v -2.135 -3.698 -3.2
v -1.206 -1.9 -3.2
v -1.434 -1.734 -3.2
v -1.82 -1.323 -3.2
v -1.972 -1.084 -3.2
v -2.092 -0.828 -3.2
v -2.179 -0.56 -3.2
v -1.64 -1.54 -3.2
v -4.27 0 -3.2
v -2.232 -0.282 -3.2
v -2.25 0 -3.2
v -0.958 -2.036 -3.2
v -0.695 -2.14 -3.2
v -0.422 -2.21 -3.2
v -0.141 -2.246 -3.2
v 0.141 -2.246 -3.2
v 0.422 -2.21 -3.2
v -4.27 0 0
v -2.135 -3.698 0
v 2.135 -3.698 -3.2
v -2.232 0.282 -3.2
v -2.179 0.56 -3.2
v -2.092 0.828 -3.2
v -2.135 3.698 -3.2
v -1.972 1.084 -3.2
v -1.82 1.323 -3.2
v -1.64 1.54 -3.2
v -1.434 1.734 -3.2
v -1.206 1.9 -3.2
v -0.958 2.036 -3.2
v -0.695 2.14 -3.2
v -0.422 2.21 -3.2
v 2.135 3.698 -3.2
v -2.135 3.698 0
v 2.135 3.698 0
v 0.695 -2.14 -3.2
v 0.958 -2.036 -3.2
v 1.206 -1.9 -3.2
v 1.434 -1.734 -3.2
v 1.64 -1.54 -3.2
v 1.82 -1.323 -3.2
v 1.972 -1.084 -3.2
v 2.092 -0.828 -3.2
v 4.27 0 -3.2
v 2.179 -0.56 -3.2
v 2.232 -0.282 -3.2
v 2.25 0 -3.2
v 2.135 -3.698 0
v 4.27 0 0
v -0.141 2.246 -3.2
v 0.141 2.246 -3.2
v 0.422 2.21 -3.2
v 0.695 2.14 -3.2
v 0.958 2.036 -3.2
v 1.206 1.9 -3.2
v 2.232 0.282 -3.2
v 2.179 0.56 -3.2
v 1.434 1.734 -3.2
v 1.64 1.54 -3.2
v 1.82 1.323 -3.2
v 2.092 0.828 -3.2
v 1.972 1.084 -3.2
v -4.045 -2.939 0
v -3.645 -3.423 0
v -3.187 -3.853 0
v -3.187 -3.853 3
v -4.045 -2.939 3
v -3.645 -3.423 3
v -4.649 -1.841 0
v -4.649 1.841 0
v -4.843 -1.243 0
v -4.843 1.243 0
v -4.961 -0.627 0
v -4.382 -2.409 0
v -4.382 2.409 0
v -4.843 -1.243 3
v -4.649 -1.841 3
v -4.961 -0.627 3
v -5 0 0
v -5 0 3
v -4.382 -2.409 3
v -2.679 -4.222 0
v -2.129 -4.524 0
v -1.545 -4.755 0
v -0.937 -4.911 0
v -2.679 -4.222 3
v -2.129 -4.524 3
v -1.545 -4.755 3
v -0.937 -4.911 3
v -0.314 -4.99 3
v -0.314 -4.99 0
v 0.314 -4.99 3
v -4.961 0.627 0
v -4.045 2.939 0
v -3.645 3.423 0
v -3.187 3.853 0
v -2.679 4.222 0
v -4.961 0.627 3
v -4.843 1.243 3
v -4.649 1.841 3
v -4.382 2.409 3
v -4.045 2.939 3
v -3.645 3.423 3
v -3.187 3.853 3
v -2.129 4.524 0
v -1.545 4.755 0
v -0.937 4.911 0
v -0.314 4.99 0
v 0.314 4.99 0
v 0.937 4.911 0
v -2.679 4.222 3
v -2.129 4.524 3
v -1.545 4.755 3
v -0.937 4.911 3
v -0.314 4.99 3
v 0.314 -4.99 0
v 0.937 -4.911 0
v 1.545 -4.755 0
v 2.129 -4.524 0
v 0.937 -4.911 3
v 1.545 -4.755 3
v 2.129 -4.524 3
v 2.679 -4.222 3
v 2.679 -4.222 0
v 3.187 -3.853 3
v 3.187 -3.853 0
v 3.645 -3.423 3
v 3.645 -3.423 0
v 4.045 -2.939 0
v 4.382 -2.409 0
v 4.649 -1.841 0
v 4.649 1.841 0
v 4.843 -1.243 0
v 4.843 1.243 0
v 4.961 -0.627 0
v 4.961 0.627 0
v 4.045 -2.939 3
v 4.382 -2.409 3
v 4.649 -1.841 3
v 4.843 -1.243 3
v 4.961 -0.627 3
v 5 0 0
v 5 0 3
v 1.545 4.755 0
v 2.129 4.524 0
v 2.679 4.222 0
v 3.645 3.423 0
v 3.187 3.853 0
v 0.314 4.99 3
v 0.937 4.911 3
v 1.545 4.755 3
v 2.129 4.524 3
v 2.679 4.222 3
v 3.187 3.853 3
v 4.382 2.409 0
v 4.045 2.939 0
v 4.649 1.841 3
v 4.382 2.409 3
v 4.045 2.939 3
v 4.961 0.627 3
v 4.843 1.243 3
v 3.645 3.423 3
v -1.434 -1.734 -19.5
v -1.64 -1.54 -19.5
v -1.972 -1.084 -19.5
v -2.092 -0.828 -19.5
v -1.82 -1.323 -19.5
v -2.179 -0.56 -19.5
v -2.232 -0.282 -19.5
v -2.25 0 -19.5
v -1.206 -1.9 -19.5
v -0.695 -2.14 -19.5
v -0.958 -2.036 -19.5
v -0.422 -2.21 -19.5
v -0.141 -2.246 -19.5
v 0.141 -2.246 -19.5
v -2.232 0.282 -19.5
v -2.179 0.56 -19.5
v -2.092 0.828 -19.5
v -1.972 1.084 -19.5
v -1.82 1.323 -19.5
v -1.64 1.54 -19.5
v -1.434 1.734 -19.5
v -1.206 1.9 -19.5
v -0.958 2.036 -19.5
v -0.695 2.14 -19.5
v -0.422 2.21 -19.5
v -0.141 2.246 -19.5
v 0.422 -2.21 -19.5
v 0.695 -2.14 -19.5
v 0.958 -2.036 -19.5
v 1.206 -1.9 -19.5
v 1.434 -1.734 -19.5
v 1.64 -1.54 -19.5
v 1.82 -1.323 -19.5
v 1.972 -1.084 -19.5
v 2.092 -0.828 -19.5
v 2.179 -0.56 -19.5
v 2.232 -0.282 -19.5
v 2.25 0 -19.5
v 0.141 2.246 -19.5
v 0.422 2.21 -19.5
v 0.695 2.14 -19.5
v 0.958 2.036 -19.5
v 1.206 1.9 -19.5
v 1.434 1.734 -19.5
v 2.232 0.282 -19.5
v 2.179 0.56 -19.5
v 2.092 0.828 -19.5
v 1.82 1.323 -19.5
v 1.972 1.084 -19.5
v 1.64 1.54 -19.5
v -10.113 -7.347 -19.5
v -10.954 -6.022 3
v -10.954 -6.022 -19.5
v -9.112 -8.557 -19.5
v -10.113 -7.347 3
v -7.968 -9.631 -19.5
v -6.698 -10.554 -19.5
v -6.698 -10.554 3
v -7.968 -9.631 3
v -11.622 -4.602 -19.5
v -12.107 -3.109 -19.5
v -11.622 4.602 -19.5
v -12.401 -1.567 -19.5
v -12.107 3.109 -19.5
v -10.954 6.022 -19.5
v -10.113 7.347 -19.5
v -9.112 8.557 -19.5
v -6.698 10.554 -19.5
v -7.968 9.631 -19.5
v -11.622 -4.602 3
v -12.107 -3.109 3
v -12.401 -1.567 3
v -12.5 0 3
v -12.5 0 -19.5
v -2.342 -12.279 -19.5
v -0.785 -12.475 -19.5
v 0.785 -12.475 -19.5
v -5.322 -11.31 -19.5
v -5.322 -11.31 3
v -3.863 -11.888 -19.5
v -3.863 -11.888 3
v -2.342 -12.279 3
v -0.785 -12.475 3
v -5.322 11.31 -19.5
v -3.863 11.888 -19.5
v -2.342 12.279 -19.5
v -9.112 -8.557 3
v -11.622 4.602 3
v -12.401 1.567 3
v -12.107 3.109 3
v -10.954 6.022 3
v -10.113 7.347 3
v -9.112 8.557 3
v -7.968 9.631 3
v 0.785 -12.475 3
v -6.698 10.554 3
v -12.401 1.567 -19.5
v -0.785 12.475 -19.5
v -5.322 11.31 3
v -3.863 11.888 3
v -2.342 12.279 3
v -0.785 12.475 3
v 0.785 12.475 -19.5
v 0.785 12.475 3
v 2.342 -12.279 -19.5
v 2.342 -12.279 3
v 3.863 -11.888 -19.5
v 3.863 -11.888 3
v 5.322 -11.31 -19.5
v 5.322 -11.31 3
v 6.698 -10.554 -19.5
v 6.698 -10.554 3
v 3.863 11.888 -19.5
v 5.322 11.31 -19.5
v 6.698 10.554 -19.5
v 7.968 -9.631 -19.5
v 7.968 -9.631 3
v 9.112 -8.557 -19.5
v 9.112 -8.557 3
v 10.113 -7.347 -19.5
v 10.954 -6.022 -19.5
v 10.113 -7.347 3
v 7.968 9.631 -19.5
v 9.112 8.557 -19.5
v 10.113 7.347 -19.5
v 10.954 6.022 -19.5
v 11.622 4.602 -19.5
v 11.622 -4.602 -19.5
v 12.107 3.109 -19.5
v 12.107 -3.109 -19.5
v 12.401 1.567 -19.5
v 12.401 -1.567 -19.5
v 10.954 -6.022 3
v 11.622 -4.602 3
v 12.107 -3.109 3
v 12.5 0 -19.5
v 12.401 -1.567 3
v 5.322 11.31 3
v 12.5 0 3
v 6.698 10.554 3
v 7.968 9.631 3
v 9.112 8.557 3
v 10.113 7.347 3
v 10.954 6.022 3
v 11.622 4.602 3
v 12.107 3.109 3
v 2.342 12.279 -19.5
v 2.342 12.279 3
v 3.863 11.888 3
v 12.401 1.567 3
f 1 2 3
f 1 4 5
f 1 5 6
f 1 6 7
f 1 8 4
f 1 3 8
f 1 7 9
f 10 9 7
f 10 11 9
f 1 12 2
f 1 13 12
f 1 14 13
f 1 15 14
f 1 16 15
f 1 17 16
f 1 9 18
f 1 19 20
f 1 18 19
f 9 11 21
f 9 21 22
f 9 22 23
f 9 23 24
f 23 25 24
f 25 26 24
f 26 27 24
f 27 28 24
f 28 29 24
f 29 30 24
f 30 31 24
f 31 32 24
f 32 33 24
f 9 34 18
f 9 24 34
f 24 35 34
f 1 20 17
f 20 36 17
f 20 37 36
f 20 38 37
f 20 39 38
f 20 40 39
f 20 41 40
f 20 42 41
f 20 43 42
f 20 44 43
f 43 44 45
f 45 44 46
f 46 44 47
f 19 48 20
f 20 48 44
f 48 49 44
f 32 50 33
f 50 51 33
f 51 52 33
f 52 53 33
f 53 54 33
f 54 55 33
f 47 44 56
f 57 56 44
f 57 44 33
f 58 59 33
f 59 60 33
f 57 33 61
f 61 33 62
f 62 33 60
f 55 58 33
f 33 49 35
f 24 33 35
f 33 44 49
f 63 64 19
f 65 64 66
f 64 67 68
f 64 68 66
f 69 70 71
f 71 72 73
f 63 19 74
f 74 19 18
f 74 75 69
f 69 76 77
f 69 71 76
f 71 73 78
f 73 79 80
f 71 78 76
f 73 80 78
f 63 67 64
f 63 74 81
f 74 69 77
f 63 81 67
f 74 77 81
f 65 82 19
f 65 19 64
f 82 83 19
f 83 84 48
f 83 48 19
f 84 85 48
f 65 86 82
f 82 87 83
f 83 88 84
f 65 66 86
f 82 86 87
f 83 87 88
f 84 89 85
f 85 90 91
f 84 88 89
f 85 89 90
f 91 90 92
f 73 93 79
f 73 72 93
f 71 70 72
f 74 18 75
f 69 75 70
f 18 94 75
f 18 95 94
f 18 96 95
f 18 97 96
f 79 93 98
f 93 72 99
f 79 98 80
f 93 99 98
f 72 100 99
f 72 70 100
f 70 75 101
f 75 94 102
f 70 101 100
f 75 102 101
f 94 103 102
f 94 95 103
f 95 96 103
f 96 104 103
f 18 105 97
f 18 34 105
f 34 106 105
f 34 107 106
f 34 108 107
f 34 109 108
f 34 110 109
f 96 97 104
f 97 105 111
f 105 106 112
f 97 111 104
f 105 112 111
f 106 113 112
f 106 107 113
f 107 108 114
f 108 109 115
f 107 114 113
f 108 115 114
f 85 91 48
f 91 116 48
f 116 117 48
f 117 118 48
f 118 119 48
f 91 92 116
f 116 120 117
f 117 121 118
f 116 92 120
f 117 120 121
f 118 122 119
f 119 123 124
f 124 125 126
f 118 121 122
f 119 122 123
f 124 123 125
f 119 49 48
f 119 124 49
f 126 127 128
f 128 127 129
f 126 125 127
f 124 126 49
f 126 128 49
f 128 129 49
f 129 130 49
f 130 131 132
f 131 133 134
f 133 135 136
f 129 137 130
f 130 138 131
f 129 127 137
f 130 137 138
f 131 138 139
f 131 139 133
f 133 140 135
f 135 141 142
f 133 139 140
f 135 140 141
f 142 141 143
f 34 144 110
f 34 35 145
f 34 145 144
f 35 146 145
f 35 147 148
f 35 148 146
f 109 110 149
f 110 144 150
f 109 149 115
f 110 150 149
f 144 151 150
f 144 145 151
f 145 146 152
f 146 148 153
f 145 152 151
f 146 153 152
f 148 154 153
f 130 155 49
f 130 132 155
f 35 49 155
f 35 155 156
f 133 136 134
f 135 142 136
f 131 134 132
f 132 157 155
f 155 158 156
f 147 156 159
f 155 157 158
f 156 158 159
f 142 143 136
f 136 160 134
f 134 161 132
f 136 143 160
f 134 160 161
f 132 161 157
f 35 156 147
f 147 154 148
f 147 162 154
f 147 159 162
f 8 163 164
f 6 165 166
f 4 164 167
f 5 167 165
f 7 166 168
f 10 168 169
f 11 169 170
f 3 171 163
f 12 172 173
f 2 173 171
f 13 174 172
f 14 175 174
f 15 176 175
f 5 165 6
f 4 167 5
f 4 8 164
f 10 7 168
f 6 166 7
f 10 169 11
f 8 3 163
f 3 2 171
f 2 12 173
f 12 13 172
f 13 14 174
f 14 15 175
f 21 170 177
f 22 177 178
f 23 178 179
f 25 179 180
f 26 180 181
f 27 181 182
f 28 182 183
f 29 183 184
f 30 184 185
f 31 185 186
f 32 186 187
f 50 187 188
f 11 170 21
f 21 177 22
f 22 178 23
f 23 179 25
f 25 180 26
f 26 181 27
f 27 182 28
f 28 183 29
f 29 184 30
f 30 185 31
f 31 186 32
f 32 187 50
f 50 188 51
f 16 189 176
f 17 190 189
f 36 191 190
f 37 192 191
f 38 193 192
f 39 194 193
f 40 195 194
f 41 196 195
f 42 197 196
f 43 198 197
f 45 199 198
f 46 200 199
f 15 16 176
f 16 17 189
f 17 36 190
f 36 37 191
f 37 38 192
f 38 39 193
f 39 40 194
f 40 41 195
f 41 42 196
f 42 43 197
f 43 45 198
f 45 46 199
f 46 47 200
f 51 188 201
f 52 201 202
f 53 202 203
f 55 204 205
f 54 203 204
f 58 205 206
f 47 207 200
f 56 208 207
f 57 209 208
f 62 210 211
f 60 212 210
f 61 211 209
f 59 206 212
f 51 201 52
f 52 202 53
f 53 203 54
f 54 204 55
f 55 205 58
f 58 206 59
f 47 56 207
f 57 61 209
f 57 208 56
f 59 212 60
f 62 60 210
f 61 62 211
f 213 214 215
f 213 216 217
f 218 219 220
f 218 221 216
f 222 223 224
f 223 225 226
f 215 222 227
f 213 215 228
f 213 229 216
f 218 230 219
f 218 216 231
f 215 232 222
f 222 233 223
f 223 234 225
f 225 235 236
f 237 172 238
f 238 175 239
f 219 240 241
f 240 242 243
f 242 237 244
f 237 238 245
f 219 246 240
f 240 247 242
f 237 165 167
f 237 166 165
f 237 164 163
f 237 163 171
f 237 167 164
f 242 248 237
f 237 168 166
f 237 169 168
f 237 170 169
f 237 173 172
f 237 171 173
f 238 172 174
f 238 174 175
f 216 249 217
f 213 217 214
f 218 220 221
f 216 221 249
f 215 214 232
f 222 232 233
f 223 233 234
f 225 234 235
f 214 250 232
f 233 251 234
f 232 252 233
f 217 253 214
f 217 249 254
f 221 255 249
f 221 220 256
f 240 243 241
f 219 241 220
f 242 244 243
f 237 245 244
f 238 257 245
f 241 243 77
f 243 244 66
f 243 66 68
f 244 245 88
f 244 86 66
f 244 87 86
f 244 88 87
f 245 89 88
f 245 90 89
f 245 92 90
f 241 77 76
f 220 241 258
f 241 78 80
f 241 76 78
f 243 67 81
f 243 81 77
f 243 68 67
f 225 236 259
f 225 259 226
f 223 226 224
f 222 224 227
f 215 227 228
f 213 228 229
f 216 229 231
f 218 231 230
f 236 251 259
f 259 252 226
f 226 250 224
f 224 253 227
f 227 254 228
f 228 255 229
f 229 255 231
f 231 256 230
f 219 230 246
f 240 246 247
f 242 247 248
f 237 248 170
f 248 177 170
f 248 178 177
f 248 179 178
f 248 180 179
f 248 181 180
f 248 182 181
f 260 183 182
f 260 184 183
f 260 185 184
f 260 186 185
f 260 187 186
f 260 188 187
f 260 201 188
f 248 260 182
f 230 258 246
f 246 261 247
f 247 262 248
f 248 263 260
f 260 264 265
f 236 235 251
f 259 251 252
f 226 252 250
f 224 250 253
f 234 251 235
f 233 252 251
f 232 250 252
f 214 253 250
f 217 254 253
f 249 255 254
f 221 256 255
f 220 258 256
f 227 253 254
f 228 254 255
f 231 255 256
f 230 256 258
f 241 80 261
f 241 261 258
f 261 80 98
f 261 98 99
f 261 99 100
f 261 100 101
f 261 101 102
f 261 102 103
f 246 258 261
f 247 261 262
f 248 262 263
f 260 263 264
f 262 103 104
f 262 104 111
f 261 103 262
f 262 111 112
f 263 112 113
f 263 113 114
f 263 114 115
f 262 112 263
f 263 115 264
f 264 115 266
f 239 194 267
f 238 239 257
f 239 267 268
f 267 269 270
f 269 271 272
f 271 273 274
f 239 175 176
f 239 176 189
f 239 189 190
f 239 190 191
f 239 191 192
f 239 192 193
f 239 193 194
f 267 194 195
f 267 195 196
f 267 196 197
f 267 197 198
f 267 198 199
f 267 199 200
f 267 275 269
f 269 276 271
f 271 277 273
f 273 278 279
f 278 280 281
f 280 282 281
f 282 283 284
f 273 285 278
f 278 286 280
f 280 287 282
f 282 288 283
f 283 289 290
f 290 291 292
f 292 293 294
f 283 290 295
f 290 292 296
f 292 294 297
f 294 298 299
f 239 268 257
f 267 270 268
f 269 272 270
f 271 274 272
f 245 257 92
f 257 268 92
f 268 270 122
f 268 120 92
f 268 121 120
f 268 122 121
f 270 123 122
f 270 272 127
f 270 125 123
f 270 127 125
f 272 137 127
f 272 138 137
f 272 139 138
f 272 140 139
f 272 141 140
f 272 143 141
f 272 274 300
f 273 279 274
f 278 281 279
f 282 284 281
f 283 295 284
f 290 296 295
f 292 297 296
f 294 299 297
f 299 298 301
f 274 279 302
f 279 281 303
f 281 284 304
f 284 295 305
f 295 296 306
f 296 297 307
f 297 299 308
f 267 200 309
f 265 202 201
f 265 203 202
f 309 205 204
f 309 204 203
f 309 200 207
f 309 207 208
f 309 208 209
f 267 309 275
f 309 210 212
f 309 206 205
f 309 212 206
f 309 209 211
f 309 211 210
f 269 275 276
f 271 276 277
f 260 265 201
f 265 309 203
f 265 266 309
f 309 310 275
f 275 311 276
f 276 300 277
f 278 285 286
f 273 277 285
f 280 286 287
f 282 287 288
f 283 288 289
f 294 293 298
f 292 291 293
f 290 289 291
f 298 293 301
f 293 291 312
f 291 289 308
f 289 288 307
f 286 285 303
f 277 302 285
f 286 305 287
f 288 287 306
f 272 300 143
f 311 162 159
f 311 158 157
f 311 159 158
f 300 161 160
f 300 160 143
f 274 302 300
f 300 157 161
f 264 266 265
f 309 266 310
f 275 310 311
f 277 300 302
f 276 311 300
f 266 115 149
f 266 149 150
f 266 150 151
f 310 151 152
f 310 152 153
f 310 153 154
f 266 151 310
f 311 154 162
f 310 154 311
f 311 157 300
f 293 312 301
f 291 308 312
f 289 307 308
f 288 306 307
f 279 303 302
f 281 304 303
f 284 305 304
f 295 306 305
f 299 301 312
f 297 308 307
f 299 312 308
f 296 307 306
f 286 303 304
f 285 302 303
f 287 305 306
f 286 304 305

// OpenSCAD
$fn = 50;

difference() {
	union() {
		translate(v = [0, 0, -19.5]) {
			cylinder(h = 22.5, r = 12.5);
		}
	}
	union() {
		translate(v = [0, 0, 0]) {
			rotate(a = [0, 0, 0]) {
				difference() {
					union() {
						translate(v = [0, 0, -3.2]) {
							linear_extrude(height = 3.2) {
								polygon(points = [[4.2698, 0.0], [2.1349000000000005, 3.697755269078796], [-2.134899999999999, 3.6977552690787965], [-4.2698, 5.228996902999369e-16], [-2.134900000000002, -3.6977552690787956], [2.1348999999999974, -3.697755269078798]]);
							}
						}
					}
					union();
				}
			}
		}
		#cylinder(h = 3, r = 5.0);
		#translate(v = [0, 0, -100.0]) {
			cylinder(h = 200, r = 2.25);
		}
	}
}
